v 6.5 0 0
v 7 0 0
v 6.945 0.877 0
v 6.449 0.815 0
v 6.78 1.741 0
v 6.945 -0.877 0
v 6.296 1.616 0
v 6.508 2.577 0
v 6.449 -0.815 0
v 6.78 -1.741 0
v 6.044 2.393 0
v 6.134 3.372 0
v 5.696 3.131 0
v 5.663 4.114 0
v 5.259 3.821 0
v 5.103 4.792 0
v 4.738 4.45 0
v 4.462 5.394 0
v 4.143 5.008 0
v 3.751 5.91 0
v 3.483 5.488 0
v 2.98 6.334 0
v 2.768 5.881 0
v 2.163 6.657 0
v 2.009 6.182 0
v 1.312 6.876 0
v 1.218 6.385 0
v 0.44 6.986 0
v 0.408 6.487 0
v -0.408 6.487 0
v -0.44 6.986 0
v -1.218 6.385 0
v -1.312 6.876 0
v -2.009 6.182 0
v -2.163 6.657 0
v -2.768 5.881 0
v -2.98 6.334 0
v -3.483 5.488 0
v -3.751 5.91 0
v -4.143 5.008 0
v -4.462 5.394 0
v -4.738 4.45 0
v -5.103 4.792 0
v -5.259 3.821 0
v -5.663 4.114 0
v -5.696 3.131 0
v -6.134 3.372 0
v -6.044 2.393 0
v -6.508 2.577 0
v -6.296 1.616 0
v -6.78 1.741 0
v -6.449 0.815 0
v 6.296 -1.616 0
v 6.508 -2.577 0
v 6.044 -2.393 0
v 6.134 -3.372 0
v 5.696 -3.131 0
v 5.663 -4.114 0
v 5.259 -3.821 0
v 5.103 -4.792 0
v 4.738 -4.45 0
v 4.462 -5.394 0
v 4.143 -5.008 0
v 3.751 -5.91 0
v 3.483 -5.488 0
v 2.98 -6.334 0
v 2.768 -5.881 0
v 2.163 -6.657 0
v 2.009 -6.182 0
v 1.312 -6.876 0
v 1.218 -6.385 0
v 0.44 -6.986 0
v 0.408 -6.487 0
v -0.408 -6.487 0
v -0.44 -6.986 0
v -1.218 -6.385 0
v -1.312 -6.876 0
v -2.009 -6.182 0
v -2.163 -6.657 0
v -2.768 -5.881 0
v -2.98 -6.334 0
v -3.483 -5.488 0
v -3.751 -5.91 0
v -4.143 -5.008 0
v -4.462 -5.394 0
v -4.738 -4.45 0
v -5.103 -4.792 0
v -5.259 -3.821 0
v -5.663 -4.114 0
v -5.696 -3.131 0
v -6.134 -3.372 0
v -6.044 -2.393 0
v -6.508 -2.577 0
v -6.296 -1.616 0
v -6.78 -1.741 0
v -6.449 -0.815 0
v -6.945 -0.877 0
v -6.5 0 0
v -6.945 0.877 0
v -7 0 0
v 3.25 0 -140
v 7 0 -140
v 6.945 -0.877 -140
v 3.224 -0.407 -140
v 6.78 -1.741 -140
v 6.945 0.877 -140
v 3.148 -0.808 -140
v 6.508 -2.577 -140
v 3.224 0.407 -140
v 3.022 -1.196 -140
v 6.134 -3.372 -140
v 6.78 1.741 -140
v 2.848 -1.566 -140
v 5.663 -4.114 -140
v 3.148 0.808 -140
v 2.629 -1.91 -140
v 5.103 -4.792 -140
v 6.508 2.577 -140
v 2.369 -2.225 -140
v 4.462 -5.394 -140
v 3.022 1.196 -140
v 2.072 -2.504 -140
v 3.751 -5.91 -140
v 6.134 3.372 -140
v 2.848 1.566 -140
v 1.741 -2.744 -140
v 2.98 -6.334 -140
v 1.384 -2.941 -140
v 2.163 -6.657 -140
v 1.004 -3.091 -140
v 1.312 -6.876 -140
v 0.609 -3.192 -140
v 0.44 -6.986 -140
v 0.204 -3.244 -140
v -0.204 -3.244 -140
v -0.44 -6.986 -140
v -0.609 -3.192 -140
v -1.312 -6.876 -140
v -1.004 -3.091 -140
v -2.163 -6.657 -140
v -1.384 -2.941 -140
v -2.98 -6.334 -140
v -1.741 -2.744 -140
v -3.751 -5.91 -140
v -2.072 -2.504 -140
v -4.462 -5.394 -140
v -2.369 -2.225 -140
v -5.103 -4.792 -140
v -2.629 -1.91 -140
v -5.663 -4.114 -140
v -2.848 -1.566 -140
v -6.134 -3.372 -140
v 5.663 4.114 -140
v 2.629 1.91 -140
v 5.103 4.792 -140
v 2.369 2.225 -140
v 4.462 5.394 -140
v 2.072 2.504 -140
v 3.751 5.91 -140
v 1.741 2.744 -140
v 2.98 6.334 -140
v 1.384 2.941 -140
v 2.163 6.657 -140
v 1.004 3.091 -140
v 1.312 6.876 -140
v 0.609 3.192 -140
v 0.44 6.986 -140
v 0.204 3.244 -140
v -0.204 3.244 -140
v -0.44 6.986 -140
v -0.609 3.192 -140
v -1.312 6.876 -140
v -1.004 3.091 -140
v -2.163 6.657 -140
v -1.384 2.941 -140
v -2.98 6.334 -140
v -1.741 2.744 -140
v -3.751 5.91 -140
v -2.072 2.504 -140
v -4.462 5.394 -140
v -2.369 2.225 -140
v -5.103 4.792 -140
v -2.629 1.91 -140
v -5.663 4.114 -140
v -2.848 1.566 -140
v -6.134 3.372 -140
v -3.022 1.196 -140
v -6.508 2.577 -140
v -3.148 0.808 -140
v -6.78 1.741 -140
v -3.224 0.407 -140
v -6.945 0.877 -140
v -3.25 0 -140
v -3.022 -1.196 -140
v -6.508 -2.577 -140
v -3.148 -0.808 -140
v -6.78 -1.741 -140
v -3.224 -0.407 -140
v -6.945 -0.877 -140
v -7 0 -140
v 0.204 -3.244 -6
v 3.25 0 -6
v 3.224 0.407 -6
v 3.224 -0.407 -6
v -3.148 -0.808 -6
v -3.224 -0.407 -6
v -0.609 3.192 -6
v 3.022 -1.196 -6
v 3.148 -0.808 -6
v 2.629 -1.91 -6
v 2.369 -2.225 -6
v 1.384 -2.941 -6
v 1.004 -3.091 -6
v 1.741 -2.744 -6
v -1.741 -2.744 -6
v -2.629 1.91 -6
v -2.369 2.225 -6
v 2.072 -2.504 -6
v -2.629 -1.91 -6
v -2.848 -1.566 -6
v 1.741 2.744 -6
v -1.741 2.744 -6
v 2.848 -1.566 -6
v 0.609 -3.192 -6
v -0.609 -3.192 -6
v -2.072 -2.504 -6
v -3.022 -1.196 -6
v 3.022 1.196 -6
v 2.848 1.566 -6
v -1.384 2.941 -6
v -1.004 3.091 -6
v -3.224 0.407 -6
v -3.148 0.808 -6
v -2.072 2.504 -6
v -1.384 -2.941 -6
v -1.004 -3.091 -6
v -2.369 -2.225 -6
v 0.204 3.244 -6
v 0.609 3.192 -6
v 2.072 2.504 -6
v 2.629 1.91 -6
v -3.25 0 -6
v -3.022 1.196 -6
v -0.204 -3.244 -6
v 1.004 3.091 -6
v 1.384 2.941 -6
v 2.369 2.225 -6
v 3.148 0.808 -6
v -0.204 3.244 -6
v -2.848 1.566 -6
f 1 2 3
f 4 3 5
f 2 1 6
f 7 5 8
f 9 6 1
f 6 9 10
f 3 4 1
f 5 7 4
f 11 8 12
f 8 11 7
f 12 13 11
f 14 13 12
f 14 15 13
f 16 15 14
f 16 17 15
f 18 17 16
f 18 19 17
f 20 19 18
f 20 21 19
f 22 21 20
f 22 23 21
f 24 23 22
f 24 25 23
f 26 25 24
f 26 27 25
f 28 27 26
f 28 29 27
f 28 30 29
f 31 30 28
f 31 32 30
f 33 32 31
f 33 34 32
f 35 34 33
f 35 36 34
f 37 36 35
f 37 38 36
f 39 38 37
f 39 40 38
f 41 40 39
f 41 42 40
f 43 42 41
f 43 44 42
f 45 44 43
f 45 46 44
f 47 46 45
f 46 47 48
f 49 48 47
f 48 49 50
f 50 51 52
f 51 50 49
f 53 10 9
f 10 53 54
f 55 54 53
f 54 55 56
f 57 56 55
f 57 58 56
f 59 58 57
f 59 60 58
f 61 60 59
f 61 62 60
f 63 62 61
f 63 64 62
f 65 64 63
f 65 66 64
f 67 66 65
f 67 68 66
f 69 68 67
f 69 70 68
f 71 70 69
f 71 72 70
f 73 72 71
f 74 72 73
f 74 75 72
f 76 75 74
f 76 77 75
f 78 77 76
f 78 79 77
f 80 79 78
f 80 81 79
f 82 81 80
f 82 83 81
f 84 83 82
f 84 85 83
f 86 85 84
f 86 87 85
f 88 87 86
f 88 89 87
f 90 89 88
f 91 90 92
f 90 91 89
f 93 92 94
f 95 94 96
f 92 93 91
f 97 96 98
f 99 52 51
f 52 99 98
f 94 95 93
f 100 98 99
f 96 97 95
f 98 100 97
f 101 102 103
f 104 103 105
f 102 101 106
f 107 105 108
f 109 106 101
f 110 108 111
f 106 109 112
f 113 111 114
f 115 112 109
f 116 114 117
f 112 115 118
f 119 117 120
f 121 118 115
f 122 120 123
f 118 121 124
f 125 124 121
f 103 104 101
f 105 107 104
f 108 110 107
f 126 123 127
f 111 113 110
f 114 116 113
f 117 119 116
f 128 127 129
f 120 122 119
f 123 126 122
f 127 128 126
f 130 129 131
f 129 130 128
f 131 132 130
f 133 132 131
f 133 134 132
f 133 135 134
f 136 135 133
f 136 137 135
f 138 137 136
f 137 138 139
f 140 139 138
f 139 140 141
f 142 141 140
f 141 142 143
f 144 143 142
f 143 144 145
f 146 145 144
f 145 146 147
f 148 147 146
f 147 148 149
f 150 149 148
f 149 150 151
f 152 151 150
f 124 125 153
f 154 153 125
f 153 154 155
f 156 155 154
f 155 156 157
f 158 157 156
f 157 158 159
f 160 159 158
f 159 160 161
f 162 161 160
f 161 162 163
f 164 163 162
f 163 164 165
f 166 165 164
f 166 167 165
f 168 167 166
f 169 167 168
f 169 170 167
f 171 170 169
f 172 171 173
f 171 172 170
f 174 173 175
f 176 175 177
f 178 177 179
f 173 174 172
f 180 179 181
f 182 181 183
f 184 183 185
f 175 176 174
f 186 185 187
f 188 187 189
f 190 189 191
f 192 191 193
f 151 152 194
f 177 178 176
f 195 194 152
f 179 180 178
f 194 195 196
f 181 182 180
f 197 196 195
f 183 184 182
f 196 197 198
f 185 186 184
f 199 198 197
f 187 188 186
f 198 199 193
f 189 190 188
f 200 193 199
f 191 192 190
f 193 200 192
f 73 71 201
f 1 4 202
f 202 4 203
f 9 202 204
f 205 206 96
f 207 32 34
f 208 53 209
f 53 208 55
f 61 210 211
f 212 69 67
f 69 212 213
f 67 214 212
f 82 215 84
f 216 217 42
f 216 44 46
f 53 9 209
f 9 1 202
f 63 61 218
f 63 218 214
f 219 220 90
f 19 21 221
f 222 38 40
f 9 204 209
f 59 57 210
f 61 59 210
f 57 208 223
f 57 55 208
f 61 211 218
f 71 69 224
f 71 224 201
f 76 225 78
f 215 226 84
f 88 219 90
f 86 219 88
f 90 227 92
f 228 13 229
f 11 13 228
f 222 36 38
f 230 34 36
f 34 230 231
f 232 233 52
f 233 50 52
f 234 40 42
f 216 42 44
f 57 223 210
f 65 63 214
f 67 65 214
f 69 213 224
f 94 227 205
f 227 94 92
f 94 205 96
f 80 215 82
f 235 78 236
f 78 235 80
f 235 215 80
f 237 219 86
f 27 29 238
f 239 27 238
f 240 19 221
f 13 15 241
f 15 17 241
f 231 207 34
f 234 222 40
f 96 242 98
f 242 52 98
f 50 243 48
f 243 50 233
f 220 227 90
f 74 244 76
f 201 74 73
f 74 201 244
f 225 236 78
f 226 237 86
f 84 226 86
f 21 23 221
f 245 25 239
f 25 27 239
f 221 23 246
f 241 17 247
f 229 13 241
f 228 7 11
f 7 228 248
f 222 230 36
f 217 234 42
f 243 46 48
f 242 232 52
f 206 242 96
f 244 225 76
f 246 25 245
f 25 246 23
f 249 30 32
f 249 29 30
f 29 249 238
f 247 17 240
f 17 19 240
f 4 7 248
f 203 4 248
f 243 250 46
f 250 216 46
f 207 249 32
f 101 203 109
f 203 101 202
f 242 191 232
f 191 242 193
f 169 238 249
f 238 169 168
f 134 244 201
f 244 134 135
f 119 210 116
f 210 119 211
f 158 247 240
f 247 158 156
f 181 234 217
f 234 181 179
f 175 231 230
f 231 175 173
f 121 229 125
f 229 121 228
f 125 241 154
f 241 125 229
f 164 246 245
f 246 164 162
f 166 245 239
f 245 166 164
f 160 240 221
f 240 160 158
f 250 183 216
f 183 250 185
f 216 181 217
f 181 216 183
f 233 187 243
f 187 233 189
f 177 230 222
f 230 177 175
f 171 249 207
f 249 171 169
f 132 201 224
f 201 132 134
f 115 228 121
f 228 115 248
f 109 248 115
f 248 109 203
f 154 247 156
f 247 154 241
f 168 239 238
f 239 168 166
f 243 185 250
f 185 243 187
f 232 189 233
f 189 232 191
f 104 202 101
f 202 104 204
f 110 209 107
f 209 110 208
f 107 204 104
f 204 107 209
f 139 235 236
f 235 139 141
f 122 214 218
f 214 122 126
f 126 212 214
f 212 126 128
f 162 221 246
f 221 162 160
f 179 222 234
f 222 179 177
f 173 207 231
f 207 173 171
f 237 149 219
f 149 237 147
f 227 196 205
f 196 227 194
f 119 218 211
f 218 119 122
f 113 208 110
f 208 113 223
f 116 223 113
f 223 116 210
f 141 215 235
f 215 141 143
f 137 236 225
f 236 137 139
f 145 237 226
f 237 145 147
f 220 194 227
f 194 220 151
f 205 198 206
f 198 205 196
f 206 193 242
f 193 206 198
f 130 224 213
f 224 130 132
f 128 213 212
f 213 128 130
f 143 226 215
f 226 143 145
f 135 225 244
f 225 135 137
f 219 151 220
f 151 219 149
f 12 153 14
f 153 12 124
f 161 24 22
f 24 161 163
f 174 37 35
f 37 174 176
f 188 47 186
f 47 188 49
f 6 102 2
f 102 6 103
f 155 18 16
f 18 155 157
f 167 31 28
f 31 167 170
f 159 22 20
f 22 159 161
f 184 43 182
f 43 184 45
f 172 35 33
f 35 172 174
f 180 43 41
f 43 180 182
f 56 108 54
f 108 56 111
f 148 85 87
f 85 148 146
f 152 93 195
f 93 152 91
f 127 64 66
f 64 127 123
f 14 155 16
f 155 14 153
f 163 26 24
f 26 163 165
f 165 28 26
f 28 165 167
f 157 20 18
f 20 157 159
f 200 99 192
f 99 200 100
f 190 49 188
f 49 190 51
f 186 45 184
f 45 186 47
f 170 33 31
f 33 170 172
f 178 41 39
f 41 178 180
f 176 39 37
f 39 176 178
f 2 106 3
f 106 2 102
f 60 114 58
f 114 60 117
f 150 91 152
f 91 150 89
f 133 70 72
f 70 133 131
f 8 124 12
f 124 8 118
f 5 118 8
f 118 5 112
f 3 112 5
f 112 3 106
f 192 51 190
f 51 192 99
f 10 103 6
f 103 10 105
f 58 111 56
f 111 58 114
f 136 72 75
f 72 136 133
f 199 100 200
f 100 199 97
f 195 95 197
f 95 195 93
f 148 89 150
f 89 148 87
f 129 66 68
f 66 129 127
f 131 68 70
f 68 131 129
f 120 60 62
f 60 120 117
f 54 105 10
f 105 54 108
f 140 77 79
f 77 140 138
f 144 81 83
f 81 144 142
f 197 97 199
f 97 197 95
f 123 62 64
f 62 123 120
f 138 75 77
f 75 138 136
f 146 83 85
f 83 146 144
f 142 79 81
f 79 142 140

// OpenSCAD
$fn = 50;


difference() {
	union() {
		translate(v = [0, 0, -140.0000000000]) {
			cylinder(h = 140, r = 7.0000000000);
		}
	}
	union() {
		translate(v = [0, 0, 0]) {
			rotate(a = [0, 0, 0]) {
				difference() {
					union() {
						#translate(v = [0, 0, -140.0000000000]) {
							cylinder(h = 140, r = 2.2500000000);
						}
						#translate(v = [0, 0, -6]) {
							cylinder(h = 6, r = 7.0000000000, r1 = 3.2500000000, r2 = 6.5000000000);
						}
						#translate(v = [0, 0, -140.0000000000]) {
							cylinder(h = 140, r = 3.2500000000);
						}
						#translate(v = [0, 0, -140.0000000000]) {
							cylinder(h = 140, r = 2.2500000000);
						}
					}
					union();
				}
			}
		}
	}
}
